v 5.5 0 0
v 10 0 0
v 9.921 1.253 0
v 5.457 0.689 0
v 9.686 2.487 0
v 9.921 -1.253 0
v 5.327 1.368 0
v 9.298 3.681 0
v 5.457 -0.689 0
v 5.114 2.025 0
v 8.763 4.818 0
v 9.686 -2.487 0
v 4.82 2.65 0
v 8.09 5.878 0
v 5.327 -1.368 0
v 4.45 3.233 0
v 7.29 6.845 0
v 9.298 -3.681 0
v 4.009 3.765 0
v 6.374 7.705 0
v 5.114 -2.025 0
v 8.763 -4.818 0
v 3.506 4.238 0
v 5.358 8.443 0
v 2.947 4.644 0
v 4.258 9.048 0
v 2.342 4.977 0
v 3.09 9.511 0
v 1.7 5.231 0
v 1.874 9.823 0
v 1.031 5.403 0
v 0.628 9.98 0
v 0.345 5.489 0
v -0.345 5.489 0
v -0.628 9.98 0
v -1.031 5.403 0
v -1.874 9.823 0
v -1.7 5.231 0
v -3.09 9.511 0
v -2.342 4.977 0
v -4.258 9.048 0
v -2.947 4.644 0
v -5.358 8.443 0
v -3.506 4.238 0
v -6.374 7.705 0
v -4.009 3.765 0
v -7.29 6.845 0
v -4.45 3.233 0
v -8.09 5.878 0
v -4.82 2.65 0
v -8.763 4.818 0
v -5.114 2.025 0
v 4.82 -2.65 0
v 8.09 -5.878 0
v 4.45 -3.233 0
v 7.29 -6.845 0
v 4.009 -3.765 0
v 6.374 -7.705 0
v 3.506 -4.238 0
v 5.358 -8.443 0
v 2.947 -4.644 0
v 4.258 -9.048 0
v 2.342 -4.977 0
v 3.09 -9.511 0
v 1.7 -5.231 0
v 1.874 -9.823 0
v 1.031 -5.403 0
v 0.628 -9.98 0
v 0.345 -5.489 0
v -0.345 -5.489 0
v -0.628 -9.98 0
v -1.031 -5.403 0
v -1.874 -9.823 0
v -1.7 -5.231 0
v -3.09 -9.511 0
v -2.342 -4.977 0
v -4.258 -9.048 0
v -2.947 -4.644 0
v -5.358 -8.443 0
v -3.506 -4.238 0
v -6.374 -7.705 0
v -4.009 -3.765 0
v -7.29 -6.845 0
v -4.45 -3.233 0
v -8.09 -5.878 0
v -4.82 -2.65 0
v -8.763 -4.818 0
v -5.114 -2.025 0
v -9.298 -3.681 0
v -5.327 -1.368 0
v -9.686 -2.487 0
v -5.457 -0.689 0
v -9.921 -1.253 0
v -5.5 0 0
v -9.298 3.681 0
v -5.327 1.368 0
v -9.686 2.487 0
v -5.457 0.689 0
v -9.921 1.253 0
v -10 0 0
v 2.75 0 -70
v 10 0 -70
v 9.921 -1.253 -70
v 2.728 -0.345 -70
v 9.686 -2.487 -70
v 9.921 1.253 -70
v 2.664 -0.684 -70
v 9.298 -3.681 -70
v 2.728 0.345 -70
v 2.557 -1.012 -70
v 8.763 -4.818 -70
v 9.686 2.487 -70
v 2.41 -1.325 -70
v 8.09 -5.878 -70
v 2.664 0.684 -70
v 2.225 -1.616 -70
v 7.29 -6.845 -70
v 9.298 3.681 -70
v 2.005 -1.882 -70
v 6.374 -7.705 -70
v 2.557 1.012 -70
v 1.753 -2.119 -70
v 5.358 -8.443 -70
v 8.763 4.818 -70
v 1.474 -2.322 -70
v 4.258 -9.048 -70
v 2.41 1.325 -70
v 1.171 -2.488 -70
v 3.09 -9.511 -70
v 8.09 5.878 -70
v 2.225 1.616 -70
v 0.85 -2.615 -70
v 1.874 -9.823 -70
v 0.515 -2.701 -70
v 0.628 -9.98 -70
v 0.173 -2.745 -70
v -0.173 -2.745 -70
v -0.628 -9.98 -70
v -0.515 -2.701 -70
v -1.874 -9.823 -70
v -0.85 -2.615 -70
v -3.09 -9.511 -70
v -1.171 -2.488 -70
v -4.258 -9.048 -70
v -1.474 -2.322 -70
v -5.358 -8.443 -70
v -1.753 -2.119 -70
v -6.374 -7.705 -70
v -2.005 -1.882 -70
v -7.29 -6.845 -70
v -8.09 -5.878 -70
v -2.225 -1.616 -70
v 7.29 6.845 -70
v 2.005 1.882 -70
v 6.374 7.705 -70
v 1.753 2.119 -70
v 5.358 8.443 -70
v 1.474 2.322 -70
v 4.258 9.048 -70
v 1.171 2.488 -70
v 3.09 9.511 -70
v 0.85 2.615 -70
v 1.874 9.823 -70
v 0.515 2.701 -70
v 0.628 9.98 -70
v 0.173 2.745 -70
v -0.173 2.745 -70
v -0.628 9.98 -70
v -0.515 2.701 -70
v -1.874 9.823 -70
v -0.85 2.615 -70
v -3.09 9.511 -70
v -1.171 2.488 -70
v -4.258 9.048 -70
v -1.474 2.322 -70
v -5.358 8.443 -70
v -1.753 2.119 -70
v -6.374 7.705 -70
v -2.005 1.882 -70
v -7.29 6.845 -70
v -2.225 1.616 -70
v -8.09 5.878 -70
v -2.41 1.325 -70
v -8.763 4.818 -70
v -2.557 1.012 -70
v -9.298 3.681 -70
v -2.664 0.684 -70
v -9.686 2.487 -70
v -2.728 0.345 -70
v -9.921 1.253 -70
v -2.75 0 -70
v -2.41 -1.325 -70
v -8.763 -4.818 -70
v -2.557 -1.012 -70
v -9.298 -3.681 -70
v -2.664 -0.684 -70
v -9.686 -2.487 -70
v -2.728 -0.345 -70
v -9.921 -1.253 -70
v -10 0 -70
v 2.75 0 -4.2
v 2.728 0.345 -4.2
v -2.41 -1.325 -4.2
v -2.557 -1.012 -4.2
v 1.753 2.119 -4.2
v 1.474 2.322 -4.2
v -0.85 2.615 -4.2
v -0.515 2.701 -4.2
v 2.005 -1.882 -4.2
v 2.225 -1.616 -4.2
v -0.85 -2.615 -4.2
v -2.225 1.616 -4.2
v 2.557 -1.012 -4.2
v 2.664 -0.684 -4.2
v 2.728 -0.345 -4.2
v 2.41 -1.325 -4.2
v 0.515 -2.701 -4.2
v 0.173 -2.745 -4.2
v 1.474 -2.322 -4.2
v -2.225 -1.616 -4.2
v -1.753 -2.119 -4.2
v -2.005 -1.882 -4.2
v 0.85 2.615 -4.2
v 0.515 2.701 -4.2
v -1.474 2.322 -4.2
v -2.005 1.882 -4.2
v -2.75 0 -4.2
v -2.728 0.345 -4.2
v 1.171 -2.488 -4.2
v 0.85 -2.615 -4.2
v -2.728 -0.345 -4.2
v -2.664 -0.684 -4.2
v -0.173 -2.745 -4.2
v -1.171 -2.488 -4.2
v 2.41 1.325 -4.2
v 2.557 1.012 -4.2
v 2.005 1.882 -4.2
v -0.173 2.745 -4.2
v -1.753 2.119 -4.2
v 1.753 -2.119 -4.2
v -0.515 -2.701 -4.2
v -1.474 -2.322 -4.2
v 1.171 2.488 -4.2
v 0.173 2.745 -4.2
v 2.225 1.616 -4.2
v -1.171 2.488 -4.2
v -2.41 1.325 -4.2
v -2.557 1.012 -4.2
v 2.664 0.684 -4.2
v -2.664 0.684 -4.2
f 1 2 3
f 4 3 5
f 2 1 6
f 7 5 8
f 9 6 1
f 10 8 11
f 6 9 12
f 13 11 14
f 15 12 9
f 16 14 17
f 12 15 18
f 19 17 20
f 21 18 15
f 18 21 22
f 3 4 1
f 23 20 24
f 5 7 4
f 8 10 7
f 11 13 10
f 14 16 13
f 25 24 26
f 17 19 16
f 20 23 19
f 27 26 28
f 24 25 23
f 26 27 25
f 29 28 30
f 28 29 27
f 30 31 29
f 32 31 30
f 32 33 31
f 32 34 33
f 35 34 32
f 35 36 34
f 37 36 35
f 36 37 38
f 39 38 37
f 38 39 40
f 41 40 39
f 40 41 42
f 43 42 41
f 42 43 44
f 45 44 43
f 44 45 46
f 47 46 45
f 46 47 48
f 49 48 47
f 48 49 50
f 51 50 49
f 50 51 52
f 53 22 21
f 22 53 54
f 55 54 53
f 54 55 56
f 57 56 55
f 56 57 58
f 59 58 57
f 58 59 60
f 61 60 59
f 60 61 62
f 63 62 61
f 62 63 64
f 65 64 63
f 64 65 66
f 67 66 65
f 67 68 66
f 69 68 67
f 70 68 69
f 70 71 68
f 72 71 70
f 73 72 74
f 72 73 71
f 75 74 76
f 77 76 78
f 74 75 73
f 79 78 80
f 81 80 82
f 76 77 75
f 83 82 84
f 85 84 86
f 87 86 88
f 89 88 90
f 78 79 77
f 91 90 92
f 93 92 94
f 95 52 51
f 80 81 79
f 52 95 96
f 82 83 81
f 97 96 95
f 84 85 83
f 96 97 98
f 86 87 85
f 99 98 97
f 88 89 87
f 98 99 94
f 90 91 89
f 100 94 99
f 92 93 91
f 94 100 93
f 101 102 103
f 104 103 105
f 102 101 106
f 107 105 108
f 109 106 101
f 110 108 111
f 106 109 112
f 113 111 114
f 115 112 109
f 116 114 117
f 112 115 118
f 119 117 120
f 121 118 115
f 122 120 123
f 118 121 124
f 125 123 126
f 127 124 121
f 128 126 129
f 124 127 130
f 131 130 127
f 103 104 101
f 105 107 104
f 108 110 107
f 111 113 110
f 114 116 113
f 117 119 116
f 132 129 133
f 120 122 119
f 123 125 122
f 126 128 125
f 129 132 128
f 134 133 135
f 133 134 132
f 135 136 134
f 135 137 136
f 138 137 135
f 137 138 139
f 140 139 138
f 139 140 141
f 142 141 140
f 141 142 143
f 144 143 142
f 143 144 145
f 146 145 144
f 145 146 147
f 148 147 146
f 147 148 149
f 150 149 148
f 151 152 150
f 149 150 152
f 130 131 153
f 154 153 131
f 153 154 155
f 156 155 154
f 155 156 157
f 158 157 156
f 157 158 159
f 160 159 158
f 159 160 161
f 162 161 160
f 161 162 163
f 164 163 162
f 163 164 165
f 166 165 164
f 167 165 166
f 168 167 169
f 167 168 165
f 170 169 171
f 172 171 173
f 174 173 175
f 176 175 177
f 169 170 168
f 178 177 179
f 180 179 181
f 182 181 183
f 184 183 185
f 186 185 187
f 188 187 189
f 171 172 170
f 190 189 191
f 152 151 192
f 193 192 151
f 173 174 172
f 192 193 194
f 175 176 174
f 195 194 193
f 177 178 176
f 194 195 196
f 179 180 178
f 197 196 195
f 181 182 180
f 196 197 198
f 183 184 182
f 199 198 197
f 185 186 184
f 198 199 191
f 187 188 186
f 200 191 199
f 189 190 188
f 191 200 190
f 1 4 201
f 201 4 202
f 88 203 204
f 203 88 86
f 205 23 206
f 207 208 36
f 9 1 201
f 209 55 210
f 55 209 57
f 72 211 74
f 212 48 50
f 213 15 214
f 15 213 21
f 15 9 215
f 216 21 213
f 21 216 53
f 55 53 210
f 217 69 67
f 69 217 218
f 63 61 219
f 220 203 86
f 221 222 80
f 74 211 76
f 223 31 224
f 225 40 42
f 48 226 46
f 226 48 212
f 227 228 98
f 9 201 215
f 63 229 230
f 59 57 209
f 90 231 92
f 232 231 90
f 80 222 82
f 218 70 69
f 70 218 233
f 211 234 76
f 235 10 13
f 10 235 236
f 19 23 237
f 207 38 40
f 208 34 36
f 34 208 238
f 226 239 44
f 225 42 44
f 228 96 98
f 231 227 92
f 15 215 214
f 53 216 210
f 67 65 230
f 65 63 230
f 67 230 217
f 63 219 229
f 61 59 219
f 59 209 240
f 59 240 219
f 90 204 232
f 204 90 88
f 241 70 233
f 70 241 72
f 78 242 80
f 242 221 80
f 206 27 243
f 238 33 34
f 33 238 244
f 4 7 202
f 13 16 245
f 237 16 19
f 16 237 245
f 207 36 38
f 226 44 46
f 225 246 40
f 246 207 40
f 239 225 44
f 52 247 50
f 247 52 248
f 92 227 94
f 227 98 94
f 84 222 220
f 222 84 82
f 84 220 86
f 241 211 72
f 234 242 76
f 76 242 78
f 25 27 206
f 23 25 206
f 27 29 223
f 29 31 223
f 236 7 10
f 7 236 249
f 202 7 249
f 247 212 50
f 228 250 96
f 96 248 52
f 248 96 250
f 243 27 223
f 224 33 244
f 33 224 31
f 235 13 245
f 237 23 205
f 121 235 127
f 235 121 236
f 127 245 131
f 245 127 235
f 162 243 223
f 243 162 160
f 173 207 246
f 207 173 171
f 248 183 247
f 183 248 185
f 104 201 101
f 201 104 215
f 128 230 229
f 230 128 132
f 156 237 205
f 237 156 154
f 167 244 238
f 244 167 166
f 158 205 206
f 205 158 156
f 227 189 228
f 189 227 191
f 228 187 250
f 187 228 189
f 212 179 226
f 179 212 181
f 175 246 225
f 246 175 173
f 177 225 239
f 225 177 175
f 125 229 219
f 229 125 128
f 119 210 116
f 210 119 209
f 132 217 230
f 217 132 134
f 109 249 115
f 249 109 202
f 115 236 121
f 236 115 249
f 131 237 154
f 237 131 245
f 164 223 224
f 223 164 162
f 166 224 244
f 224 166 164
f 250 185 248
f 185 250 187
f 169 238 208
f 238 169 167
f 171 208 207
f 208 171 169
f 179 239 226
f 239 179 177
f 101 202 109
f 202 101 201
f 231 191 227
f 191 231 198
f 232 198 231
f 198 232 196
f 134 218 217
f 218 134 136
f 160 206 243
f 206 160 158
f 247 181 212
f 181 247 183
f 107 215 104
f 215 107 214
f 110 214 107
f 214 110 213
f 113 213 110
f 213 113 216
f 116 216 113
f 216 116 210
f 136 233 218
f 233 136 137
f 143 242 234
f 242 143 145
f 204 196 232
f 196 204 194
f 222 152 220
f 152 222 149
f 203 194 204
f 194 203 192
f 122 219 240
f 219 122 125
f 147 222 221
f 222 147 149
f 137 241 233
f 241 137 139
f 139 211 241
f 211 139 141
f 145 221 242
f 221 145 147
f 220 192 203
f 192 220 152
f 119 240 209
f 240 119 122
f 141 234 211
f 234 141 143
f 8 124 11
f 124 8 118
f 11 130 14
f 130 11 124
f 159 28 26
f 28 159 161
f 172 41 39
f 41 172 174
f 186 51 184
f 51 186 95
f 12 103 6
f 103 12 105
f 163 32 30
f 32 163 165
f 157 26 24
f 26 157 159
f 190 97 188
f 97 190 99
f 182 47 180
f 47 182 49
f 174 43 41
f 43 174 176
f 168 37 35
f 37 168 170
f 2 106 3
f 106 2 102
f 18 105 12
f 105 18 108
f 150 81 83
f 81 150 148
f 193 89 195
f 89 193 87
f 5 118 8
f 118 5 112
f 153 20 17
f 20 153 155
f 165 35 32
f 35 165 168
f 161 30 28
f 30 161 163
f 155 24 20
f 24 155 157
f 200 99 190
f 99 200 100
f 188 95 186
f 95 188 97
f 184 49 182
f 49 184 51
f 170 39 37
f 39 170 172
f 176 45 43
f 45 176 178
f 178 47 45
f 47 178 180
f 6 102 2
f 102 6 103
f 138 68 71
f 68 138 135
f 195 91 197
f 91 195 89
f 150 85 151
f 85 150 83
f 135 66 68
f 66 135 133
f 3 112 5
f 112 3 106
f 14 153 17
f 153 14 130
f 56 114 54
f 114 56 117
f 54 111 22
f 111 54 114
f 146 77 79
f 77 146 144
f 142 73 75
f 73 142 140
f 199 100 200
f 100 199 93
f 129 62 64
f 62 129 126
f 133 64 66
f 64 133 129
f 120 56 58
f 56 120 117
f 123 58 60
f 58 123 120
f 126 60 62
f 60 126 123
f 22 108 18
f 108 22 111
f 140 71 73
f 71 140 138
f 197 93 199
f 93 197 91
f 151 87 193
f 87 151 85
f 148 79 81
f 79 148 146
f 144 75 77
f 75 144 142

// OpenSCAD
$fn = 50;


difference() {
	union() {
		translate(v = [0, 0, -70.0000000000]) {
			cylinder(h = 70, r = 10.0000000000);
		}
	}
	union() {
		translate(v = [0, 0, 0]) {
			rotate(a = [0, 0, 0]) {
				difference() {
					union() {
						#translate(v = [0, 0, -70.0000000000]) {
							cylinder(h = 70, r = 2.2500000000);
						}
						#translate(v = [0, 0, -4.2000000000]) {
							cylinder(h = 4.2000000000, r = 10.0000000000, r1 = 2.7500000000, r2 = 5.5000000000);
						}
						#translate(v = [0, 0, -70.0000000000]) {
							cylinder(h = 70, r = 2.7500000000);
						}
						#translate(v = [0, 0, -70.0000000000]) {
							cylinder(h = 70, r = 2.2500000000);
						}
					}
					union();
				}
			}
		}
	}
}
